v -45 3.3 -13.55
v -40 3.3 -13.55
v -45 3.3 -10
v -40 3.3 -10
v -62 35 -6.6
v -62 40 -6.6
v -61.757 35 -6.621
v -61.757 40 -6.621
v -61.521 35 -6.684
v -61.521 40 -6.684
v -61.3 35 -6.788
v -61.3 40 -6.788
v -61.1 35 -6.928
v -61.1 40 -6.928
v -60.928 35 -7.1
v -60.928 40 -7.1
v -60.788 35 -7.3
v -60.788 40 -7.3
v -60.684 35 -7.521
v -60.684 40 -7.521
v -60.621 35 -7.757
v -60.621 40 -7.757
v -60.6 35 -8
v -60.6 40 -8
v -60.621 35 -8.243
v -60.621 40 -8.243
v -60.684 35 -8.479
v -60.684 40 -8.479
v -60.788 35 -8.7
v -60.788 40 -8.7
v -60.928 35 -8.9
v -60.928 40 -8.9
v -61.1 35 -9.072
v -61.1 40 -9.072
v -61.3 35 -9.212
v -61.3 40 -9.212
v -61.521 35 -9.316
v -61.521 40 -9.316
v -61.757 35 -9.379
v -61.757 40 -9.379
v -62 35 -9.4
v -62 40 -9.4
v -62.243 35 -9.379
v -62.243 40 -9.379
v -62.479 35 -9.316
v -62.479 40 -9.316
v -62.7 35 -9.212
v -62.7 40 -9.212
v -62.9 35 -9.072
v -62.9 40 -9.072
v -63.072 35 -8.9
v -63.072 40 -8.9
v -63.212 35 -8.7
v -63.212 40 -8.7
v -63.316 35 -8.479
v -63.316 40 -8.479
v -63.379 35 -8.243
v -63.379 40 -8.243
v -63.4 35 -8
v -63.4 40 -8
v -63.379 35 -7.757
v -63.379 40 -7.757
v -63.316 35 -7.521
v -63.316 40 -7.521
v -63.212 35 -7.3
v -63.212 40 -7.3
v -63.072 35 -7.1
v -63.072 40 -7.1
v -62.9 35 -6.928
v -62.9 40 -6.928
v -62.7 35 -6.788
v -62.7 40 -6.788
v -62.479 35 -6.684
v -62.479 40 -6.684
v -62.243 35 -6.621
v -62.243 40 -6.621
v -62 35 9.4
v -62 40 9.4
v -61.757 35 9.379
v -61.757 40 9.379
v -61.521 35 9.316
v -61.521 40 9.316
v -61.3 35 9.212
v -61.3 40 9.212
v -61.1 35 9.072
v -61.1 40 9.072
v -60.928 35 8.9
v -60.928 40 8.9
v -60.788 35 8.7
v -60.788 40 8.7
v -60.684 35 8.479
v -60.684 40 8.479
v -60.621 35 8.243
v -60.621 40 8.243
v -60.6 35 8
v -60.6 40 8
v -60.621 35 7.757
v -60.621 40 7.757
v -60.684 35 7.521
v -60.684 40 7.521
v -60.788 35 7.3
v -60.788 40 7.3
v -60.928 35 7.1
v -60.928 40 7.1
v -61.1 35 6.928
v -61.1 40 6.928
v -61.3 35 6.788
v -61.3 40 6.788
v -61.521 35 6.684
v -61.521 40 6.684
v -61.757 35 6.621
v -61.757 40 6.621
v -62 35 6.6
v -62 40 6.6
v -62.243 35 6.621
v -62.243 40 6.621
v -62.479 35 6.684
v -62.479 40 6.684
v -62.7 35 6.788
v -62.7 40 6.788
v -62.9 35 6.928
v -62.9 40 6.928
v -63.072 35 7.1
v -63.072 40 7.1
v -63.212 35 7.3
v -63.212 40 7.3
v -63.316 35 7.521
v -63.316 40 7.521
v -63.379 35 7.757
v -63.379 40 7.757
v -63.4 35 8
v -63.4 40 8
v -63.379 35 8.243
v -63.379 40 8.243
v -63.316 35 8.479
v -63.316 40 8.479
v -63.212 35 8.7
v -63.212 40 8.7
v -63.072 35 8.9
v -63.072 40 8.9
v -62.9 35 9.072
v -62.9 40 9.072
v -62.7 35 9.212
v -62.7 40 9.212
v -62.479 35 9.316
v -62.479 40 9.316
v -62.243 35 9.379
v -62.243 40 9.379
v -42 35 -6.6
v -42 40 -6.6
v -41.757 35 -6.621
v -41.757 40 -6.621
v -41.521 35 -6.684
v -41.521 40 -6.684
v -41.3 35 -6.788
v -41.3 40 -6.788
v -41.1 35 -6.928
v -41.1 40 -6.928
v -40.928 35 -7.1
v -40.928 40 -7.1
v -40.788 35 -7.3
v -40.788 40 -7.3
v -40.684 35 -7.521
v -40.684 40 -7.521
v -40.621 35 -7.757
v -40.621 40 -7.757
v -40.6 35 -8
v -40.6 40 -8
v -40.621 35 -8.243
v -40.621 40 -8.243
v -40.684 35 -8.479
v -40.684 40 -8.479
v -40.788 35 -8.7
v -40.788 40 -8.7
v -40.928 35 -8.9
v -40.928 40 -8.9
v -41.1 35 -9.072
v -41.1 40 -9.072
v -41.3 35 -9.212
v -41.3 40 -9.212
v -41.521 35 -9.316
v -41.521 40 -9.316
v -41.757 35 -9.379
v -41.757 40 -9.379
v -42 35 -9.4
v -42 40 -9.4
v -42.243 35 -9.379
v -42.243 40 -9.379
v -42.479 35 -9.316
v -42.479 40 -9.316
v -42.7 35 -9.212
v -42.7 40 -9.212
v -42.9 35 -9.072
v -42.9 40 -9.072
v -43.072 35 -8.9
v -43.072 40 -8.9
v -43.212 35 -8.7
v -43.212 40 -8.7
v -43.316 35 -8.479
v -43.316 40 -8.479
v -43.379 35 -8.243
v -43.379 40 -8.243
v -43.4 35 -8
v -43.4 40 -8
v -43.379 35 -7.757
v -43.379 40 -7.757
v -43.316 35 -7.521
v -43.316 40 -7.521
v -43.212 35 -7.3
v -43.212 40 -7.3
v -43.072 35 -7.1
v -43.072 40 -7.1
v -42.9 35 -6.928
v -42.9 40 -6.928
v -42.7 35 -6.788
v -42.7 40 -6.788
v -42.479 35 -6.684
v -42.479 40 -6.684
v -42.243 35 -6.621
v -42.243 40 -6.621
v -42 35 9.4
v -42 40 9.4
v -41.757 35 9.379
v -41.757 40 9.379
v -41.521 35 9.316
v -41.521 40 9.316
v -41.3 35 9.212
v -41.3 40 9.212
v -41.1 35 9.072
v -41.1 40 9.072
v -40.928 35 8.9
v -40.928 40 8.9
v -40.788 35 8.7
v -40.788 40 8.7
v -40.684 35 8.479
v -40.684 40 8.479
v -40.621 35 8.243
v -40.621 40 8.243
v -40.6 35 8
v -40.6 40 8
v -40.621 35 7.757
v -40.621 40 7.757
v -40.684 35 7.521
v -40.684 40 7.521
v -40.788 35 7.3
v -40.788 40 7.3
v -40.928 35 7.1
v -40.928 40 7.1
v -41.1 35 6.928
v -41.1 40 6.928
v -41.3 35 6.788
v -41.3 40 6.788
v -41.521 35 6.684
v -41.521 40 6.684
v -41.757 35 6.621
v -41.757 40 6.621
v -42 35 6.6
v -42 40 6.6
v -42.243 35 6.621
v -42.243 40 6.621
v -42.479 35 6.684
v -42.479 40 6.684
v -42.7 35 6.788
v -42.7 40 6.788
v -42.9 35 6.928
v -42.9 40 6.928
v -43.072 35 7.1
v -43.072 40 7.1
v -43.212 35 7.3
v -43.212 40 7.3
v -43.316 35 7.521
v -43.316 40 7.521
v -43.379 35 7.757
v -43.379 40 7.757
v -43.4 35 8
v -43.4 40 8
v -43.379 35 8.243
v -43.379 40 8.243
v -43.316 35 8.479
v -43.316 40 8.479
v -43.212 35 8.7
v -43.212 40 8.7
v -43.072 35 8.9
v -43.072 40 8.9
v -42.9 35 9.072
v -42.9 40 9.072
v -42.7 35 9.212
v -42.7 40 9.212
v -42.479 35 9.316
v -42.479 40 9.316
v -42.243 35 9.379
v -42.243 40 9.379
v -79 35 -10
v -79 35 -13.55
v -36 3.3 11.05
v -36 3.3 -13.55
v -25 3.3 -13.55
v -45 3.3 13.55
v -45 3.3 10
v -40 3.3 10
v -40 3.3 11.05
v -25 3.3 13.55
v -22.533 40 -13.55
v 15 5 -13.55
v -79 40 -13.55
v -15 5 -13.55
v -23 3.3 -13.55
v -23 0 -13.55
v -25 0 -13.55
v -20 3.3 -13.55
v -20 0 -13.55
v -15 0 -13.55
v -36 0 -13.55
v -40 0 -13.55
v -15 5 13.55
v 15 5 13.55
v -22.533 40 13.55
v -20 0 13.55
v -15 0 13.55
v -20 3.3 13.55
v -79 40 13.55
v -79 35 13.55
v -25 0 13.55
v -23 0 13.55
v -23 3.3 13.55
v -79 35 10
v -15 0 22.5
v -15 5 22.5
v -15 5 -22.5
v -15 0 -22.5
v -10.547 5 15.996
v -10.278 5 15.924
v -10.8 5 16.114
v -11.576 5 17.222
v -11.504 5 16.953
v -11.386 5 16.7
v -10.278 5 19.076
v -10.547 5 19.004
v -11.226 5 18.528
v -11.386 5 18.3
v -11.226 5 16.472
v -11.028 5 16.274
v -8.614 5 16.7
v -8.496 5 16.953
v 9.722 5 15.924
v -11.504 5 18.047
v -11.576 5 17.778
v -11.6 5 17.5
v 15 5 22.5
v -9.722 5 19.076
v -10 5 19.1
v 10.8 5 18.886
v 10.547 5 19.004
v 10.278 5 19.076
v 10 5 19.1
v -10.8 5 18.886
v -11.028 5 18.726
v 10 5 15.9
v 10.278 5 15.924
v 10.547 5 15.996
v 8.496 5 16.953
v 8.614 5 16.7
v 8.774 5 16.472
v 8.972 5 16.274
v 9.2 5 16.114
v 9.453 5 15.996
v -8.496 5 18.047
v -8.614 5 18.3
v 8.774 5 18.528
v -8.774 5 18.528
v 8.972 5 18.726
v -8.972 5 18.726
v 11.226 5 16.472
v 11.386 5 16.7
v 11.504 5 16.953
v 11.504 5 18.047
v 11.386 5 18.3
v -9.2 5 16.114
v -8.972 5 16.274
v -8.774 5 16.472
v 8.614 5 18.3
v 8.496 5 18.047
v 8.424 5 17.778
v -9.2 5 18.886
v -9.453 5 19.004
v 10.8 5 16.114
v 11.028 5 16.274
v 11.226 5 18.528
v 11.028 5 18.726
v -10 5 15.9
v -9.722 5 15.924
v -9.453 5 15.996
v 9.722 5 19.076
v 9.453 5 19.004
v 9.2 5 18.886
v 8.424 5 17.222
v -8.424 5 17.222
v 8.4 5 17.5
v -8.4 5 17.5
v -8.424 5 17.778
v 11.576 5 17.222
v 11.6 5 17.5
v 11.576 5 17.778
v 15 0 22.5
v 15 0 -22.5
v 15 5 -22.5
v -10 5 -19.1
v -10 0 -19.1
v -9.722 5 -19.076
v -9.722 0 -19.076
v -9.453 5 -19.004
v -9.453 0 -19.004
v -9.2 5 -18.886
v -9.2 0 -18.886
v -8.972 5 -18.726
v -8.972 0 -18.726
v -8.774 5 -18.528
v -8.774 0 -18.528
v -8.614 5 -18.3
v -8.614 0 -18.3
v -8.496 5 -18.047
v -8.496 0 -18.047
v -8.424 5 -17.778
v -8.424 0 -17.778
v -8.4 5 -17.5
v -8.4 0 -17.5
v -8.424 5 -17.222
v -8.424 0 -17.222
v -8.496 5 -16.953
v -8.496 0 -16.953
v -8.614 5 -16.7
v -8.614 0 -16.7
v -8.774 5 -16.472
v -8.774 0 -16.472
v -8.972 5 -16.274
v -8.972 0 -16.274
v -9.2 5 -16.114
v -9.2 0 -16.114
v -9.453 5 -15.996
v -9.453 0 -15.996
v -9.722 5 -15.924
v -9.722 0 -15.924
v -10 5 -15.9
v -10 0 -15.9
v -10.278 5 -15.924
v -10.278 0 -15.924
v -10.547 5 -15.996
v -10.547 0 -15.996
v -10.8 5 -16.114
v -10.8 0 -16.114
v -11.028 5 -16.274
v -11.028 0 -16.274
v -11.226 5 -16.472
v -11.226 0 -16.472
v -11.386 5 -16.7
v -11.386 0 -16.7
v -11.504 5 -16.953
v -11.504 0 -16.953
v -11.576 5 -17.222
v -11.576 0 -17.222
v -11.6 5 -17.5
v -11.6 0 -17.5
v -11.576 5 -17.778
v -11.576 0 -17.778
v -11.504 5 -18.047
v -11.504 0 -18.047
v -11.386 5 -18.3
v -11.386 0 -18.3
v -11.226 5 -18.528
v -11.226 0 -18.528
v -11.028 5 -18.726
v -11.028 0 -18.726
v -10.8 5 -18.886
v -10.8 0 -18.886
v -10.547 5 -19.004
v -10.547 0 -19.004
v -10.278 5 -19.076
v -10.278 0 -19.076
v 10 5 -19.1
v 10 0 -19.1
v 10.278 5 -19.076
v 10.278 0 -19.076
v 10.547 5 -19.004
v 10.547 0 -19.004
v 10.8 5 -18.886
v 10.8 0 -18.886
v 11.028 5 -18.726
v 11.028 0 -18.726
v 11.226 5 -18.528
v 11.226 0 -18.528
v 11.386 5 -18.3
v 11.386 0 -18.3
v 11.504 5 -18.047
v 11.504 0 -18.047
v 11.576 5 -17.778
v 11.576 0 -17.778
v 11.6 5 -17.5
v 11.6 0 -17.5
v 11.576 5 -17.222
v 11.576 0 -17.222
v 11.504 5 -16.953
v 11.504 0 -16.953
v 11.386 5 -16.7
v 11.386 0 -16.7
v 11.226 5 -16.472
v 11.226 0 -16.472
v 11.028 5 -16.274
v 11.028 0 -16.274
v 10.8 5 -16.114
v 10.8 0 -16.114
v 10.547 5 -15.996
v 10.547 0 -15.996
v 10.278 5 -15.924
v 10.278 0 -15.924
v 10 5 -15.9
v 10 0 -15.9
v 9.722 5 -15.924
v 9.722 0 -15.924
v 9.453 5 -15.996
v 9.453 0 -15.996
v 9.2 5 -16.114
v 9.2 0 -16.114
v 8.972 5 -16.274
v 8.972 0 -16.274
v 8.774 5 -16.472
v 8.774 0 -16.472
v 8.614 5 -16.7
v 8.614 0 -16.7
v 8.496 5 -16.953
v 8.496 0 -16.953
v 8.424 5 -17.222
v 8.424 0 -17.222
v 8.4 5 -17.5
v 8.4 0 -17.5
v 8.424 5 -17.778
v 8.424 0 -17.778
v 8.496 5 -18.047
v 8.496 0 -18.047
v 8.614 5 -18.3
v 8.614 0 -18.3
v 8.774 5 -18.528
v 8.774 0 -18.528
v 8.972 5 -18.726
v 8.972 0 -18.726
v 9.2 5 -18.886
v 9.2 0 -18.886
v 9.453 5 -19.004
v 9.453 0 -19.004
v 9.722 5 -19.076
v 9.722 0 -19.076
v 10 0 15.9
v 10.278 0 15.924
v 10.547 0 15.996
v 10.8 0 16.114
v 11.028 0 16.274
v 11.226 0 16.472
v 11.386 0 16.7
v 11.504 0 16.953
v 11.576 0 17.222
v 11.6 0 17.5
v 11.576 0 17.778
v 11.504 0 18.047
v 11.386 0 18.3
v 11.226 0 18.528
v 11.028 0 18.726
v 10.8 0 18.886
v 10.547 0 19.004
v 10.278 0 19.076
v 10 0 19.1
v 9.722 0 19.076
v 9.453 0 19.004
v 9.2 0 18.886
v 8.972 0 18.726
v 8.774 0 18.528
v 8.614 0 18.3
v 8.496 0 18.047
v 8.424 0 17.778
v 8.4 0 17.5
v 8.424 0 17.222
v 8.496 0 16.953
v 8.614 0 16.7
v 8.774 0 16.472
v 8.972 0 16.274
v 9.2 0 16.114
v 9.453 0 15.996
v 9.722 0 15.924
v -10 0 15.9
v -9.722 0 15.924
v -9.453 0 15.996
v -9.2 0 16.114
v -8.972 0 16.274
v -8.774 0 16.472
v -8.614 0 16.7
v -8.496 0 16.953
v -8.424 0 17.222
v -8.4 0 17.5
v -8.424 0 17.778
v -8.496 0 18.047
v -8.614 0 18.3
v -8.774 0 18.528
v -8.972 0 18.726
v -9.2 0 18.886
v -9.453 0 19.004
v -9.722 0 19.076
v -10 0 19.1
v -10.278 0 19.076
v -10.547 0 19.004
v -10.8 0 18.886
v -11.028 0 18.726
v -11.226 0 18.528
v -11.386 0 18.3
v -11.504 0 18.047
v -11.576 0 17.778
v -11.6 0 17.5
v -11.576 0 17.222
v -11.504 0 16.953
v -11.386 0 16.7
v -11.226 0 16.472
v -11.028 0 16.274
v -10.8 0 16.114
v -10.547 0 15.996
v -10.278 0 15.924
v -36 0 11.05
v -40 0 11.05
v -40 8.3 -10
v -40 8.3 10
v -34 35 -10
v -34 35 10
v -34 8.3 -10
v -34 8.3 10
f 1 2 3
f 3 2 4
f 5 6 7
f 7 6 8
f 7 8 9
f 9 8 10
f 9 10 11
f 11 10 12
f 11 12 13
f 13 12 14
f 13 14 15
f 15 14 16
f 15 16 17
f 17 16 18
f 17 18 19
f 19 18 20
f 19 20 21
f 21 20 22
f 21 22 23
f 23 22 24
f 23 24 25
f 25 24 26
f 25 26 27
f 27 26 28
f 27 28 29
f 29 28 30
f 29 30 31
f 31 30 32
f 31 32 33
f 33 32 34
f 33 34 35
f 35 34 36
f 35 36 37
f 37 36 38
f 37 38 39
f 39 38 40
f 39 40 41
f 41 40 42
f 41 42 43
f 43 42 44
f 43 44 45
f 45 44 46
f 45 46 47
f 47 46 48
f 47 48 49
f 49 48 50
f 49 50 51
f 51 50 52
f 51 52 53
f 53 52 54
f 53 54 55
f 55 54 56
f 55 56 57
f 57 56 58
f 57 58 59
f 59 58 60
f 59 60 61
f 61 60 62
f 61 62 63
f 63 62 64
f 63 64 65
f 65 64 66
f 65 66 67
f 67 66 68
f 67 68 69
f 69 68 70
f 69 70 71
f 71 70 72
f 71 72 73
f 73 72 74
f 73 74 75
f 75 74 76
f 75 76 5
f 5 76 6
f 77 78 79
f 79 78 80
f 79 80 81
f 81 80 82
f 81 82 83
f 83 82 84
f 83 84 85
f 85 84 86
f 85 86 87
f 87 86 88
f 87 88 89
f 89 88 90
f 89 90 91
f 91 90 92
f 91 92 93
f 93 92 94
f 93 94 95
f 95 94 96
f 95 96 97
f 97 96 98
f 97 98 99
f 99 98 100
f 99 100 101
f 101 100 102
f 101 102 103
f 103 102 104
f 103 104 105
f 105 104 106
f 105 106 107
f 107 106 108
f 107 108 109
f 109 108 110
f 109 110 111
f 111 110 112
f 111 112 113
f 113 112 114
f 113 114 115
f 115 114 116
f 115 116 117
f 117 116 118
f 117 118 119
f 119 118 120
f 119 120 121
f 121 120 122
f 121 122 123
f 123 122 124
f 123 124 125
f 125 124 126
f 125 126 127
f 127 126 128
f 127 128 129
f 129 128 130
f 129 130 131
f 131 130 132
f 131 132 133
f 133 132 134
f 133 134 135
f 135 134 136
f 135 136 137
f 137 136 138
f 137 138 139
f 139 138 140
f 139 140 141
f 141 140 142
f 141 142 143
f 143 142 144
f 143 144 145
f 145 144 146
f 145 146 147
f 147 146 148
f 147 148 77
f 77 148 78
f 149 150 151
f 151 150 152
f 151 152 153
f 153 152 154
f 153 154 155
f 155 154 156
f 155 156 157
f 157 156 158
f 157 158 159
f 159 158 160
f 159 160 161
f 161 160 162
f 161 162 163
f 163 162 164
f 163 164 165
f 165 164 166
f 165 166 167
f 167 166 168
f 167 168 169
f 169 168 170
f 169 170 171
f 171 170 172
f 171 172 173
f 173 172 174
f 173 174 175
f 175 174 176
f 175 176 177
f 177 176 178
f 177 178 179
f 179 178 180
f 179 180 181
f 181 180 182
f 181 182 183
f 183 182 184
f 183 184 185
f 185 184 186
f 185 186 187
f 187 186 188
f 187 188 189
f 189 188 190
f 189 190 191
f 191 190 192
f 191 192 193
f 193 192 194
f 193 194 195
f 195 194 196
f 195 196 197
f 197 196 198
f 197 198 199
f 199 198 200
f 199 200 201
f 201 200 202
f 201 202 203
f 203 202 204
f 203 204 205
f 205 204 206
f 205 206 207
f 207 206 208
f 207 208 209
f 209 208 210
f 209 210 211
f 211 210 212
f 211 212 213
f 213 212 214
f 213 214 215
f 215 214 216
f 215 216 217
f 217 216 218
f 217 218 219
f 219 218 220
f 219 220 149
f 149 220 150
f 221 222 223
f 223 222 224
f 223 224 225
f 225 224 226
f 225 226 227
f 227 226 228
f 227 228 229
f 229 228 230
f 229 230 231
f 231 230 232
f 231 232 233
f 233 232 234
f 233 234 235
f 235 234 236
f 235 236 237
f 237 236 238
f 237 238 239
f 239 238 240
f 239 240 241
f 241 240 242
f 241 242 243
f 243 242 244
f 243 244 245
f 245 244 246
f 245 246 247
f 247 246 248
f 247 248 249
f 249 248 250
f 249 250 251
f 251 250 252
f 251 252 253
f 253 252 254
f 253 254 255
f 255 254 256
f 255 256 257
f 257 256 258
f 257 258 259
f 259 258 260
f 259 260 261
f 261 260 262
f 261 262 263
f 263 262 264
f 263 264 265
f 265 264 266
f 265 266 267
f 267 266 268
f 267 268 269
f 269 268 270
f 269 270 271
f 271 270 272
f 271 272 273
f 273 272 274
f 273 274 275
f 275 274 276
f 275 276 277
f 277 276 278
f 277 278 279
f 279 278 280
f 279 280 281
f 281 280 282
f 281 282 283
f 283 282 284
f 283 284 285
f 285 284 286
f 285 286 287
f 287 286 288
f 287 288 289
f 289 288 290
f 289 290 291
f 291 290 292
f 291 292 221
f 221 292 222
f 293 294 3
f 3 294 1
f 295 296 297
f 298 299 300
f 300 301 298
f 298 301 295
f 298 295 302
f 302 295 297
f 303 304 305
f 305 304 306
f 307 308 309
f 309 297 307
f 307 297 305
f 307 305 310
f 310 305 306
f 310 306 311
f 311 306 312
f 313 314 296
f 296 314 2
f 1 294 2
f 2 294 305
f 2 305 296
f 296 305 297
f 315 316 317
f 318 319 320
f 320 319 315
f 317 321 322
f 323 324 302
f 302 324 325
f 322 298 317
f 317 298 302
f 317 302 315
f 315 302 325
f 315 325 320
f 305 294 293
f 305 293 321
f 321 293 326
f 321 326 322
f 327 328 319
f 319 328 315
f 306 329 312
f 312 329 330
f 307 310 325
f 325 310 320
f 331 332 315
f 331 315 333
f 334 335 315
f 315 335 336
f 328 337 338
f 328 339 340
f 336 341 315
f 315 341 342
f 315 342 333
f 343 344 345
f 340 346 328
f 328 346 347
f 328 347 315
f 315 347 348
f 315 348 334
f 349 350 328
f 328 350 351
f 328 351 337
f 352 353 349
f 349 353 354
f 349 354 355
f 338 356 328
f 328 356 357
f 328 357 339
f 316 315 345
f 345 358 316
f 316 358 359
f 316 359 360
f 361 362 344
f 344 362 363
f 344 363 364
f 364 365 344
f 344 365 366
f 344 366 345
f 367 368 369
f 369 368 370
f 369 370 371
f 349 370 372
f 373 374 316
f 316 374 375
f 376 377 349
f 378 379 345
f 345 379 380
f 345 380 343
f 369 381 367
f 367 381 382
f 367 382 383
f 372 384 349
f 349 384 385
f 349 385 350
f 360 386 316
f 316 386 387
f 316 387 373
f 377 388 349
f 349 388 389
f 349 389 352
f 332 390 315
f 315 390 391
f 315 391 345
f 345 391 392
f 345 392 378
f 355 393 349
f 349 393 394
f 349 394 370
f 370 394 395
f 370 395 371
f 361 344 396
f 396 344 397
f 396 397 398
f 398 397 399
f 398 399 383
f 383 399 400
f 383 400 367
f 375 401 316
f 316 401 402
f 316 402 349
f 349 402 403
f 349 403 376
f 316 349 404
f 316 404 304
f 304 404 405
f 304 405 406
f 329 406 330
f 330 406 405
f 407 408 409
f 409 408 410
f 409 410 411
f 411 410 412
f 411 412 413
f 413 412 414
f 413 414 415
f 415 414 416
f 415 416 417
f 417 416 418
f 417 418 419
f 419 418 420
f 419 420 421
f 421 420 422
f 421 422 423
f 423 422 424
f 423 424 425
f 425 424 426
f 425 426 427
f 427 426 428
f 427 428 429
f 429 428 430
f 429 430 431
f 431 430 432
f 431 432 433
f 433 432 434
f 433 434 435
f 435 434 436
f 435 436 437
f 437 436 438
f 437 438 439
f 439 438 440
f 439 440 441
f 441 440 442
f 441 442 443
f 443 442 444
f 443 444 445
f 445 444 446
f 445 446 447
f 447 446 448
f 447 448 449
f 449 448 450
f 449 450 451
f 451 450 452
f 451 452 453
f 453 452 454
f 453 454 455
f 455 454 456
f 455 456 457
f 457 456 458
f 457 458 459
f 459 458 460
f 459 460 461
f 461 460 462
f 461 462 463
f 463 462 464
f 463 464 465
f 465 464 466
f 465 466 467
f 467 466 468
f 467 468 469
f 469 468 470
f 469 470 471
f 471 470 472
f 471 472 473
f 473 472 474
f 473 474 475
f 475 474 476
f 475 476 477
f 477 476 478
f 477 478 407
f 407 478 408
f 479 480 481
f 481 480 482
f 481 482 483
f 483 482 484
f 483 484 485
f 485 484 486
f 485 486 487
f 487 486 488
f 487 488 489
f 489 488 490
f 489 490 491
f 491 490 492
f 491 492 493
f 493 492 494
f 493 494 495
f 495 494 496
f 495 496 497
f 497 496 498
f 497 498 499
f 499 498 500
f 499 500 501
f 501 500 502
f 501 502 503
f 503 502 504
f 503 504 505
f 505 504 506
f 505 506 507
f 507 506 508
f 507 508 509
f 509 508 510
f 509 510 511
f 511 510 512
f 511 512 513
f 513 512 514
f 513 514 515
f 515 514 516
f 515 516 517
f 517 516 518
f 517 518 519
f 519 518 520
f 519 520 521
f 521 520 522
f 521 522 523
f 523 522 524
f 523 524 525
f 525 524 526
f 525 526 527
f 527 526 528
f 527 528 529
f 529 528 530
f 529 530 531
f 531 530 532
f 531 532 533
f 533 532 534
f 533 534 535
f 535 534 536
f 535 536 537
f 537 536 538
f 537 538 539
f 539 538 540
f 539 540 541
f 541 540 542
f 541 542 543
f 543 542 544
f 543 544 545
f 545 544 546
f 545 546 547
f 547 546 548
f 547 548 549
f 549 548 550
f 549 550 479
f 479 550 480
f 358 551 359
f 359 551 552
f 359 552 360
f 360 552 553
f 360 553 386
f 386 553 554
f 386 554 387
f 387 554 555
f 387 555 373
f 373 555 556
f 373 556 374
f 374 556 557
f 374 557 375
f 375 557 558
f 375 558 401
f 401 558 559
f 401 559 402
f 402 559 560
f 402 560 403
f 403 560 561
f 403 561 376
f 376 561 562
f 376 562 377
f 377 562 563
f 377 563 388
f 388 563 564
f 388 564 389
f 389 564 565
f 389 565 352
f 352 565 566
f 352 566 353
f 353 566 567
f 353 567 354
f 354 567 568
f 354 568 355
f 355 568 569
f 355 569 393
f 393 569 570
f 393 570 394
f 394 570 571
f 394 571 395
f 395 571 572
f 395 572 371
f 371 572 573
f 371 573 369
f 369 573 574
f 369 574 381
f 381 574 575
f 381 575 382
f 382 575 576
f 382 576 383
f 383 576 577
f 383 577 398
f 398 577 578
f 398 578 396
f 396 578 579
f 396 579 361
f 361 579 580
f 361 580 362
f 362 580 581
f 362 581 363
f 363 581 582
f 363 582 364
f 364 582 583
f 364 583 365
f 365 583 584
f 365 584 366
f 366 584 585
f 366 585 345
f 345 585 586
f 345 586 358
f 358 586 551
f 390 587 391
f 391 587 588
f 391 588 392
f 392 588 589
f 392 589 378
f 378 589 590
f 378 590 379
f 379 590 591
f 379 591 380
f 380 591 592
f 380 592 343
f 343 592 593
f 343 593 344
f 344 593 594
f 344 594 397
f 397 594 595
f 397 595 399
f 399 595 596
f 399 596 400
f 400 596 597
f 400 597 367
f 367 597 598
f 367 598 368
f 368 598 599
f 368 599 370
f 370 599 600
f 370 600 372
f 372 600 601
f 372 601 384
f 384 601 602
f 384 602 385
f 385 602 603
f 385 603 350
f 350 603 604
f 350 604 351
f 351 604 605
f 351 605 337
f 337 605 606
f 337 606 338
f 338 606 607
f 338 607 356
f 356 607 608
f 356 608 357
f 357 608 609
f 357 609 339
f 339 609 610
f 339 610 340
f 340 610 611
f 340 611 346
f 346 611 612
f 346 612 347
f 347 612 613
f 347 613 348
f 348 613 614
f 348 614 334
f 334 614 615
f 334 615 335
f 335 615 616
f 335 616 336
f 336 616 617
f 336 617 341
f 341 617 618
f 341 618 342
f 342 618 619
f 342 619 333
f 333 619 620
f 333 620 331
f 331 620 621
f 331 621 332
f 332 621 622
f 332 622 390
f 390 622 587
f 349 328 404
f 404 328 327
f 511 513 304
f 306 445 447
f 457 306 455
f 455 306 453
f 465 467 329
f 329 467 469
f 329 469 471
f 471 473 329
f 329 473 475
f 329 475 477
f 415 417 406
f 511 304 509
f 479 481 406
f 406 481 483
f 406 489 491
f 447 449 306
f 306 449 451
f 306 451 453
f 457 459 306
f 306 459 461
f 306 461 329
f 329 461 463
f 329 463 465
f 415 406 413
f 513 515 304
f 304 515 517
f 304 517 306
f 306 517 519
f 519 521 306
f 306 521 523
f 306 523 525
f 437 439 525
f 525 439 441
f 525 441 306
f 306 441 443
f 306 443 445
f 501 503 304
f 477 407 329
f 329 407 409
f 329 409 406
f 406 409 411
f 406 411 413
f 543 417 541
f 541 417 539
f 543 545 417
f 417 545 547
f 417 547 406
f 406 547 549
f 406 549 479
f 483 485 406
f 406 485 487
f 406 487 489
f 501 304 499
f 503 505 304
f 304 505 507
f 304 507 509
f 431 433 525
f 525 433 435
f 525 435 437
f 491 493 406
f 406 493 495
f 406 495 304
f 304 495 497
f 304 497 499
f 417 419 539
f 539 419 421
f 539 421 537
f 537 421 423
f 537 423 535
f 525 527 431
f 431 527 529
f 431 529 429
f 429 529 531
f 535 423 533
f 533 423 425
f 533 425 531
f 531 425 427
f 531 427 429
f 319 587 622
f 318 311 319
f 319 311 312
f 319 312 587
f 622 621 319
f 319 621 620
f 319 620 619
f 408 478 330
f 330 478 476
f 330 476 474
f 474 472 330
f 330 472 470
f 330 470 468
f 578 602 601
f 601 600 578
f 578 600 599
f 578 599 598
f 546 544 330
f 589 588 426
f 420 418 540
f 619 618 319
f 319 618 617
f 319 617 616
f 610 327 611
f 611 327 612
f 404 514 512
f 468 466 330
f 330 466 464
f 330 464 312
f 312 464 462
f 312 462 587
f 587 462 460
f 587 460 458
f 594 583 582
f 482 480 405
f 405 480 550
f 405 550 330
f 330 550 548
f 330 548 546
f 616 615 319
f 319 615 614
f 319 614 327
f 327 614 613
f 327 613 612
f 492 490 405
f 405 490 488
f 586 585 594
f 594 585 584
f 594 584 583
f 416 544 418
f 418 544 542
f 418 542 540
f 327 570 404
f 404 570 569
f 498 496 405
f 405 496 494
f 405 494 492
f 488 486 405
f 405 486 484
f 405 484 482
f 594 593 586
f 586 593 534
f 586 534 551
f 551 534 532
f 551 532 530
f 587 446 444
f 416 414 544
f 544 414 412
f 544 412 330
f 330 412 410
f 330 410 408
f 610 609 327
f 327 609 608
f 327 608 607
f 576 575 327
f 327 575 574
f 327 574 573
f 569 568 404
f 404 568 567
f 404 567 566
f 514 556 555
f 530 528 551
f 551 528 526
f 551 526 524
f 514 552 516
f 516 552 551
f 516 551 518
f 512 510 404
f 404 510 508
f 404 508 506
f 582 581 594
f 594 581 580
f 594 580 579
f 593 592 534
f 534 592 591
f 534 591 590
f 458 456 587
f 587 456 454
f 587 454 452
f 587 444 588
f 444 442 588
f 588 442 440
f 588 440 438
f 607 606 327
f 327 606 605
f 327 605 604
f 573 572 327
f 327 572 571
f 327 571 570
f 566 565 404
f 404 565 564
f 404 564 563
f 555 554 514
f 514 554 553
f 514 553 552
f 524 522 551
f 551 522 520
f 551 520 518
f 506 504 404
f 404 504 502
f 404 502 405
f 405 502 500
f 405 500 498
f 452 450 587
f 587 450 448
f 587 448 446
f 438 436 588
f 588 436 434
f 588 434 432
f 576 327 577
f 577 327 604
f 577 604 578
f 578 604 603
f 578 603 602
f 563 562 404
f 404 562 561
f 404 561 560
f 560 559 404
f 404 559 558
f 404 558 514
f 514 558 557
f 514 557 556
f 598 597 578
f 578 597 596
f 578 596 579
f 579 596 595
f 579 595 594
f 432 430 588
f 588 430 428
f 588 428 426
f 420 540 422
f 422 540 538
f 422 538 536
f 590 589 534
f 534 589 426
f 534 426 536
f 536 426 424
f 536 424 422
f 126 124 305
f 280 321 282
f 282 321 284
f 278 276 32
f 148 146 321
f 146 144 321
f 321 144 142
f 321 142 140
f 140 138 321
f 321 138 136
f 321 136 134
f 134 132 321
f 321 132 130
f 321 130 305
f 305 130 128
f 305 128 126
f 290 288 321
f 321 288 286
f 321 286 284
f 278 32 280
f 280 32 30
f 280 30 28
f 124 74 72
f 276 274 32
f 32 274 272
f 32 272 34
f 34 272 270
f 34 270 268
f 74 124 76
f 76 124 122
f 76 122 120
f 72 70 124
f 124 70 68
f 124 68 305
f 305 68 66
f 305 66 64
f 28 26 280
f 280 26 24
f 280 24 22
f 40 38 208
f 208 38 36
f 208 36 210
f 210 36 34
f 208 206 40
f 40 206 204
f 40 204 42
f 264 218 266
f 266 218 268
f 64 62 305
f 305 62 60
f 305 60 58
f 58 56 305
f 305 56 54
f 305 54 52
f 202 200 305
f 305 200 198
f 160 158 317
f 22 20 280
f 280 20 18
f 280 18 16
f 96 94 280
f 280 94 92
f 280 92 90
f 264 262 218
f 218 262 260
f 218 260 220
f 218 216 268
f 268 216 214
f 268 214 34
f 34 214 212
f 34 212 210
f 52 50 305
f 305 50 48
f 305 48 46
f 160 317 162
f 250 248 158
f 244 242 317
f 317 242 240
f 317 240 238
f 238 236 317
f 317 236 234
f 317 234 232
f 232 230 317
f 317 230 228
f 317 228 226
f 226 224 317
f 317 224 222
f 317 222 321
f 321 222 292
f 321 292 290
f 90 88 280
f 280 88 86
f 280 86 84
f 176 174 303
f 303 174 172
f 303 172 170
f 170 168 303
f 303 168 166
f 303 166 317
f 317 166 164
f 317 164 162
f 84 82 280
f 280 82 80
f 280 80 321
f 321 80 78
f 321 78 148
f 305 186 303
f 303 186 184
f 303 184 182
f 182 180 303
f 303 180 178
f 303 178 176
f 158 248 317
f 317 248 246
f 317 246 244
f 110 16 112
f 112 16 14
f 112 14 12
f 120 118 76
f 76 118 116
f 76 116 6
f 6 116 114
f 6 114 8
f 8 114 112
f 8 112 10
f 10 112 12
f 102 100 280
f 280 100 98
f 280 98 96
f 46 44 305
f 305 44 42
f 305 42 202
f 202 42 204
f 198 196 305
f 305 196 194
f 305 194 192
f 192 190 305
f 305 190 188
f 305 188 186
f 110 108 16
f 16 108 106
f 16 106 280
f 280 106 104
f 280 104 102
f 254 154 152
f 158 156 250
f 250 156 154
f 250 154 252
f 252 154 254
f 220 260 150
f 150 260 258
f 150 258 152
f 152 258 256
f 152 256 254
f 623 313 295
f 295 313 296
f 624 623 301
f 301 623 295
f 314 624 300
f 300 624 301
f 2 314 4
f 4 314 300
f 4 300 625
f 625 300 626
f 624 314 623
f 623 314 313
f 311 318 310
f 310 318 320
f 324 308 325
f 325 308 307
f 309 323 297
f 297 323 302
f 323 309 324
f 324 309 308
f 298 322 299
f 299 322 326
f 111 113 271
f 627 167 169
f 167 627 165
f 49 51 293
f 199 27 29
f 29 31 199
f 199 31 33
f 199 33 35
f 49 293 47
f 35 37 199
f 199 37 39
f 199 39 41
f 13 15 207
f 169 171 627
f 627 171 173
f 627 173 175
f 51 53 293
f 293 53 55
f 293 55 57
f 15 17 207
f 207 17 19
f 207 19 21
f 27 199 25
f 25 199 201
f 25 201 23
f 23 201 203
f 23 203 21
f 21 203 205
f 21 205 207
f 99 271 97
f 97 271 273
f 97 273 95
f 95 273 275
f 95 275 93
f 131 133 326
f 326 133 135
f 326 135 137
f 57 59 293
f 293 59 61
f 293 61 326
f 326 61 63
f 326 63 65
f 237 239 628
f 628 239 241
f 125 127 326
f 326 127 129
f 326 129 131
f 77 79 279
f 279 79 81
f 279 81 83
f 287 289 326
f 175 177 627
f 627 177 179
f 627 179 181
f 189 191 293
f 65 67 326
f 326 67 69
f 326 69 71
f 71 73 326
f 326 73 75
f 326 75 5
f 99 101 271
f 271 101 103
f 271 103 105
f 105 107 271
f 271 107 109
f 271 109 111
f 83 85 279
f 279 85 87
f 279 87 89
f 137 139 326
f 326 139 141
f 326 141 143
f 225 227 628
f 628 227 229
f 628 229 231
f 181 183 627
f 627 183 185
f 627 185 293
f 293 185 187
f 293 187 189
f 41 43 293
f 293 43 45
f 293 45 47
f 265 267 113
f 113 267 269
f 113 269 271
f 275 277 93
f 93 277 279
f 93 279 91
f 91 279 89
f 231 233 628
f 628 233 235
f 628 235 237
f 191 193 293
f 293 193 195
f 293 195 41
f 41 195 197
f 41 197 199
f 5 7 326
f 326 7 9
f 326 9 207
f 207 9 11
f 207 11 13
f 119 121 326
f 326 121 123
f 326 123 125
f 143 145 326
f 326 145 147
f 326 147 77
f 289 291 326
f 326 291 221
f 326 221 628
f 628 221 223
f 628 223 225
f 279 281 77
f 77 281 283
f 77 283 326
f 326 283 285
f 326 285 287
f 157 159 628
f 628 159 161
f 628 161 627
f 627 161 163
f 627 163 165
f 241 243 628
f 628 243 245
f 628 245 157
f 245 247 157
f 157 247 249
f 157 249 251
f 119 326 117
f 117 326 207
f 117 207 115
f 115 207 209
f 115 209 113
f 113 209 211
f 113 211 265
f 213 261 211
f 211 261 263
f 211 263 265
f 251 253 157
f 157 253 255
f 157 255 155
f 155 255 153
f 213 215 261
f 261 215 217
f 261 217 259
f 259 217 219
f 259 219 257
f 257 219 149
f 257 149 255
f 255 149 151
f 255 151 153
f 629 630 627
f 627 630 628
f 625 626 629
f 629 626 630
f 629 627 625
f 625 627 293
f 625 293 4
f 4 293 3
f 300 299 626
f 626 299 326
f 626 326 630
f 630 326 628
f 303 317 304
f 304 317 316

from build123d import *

# Parameters (mm, degrees)
SKETCH1_W                = 30
SKETCH1_H                = 45
SKETCH1_R                = 1.6
BOSS_EXTRUDE3_DEPTH      = 5
SKETCH2_W                = 64
SKETCH2_H                = 27.1
SKETCH2_W_2              = 30
BOSS_EXTRUDE4_DEPTH      = 35
BOSS_EXTRUDE4_DEPTH_BACK = 1.7
SKETCH3_W                = 4
SKETCH3_H                = 24.6
SKETCH3_W_2              = 5
SKETCH3_H_2              = 27.1
SKETCH3_W_3              = 2
BOSS_EXTRUDE5_DEPTH      = 3.3
SKETCH4_R                = 1.4
CUT_EXTRUDE1_DEPTH       = 41
CUT_EXTRUDE4_DEPTH       = 37.05
CUT_EXTRUDE5_DEPTH       = 10
CUT_EXTRUDE5_DEPTH_BACK  = 10
CUT_EXTRUDE6_DEPTH       = 37.05


with BuildPart() as part:
    # Sketch1 → Boss-Extrude3 (new body)
    with BuildSketch(Plane(origin=(0, 0, 0), x_dir=(1, 0, 0), z_dir=(0, 1, 0))):
        Rectangle(SKETCH1_W, SKETCH1_H)
        with Locations((-10, -17.5)):
            Circle(SKETCH1_R, mode=Mode.SUBTRACT)
        with Locations((10, -17.5)):
            Circle(SKETCH1_R, mode=Mode.SUBTRACT)
        with Locations((10, 17.5)):
            Circle(SKETCH1_R, mode=Mode.SUBTRACT)
        with Locations((-10, 17.5)):
            Circle(SKETCH1_R, mode=Mode.SUBTRACT)
        Polygon((-6, 22.5), (-15, 22.5), (-15, -22.5), (15, -22.5), (15, 22.5), (6, 22.5), align=None)
        with Locations((-10, -17.5)):
            Circle(SKETCH1_R, mode=Mode.SUBTRACT)
        with Locations((10, -17.5)):
            Circle(SKETCH1_R, mode=Mode.SUBTRACT)
        with Locations((-10, 17.5)):
            Circle(SKETCH1_R, mode=Mode.SUBTRACT)
        with Locations((10, 17.5)):
            Circle(SKETCH1_R, mode=Mode.SUBTRACT)
    extrude(amount=BOSS_EXTRUDE3_DEPTH)

    # Sketch2 → Boss-Extrude4 (add, two sides)
    with BuildSketch(Plane(origin=(0, 5, 0), x_dir=(1, 0, 0), z_dir=(0, 1, 0))) as boss_extrude4_sk:
        with Locations((-47, 0)):
            Rectangle(SKETCH2_W, SKETCH2_H)
        Rectangle(SKETCH2_W_2, SKETCH2_H)
    extrude(amount=BOSS_EXTRUDE4_DEPTH)
    extrude(boss_extrude4_sk.sketch, amount=-BOSS_EXTRUDE4_DEPTH_BACK)

    # Sketch3 → Boss-Extrude5 (add)
    with BuildSketch(Plane.XZ.offset(-3.3)):
        with Locations((-38, -1.25)):
            Rectangle(SKETCH3_W, SKETCH3_H)
        with Locations((-17.5, 0)):
            Rectangle(SKETCH3_W_2, SKETCH3_H_2)
        with Locations((-24, 0)):
            Rectangle(SKETCH3_W_3, SKETCH3_H_2)
    extrude(amount=BOSS_EXTRUDE5_DEPTH)

    # Sketch4 → Cut-Extrude1 (cut, through all)
    with BuildSketch(Plane(origin=(0, 40, 0), x_dir=(1, 0, 0), z_dir=(0, 1, 0))):
        with Locations((-62, 8)):
            Circle(SKETCH4_R)
        with Locations((-42, 8)):
            Circle(SKETCH4_R)
        with Locations((-42, -8)):
            Circle(SKETCH4_R)
        with Locations((-62, -8)):
            Circle(SKETCH4_R)
    extrude(amount=-CUT_EXTRUDE1_DEPTH, mode=Mode.SUBTRACT)

    # Sketch7 → Cut-Extrude4 (cut, through all)
    with BuildSketch(Plane.XY.offset(13.55)):
        Polygon((-45, 3.3), (-79, 35), (-79, 3.3), align=None)
    extrude(amount=-CUT_EXTRUDE4_DEPTH, mode=Mode.SUBTRACT)

    # Sketch8 → Cut-Extrude5 (cut, two sides)
    with BuildSketch(Plane(origin=(0, 0, 0), x_dir=(-1, 0, 0), z_dir=(0, 0, -1))) as cut_extrude5_sk:
        Polygon((79, 35), (34, 35), (34, 8.3), (40, 8.3), (40, 3.3), (51.306520611, 3.3), (51.306520611, 8.3), (79, 8.3), align=None)
    extrude(amount=CUT_EXTRUDE5_DEPTH, mode=Mode.SUBTRACT)
    extrude(cut_extrude5_sk.sketch, amount=-CUT_EXTRUDE5_DEPTH_BACK, mode=Mode.SUBTRACT)

    # Sketch9 → Cut-Extrude6 (cut, through all)
    with BuildSketch(Plane(origin=(0, 0, -13.55), x_dir=(-1, 0, 0), z_dir=(0, 0, -1))):
        Polygon((-15, 40), (-15, 5), (22.532904851, 40), align=None)
    extrude(amount=-CUT_EXTRUDE6_DEPTH, mode=Mode.SUBTRACT)


solid = part.part
